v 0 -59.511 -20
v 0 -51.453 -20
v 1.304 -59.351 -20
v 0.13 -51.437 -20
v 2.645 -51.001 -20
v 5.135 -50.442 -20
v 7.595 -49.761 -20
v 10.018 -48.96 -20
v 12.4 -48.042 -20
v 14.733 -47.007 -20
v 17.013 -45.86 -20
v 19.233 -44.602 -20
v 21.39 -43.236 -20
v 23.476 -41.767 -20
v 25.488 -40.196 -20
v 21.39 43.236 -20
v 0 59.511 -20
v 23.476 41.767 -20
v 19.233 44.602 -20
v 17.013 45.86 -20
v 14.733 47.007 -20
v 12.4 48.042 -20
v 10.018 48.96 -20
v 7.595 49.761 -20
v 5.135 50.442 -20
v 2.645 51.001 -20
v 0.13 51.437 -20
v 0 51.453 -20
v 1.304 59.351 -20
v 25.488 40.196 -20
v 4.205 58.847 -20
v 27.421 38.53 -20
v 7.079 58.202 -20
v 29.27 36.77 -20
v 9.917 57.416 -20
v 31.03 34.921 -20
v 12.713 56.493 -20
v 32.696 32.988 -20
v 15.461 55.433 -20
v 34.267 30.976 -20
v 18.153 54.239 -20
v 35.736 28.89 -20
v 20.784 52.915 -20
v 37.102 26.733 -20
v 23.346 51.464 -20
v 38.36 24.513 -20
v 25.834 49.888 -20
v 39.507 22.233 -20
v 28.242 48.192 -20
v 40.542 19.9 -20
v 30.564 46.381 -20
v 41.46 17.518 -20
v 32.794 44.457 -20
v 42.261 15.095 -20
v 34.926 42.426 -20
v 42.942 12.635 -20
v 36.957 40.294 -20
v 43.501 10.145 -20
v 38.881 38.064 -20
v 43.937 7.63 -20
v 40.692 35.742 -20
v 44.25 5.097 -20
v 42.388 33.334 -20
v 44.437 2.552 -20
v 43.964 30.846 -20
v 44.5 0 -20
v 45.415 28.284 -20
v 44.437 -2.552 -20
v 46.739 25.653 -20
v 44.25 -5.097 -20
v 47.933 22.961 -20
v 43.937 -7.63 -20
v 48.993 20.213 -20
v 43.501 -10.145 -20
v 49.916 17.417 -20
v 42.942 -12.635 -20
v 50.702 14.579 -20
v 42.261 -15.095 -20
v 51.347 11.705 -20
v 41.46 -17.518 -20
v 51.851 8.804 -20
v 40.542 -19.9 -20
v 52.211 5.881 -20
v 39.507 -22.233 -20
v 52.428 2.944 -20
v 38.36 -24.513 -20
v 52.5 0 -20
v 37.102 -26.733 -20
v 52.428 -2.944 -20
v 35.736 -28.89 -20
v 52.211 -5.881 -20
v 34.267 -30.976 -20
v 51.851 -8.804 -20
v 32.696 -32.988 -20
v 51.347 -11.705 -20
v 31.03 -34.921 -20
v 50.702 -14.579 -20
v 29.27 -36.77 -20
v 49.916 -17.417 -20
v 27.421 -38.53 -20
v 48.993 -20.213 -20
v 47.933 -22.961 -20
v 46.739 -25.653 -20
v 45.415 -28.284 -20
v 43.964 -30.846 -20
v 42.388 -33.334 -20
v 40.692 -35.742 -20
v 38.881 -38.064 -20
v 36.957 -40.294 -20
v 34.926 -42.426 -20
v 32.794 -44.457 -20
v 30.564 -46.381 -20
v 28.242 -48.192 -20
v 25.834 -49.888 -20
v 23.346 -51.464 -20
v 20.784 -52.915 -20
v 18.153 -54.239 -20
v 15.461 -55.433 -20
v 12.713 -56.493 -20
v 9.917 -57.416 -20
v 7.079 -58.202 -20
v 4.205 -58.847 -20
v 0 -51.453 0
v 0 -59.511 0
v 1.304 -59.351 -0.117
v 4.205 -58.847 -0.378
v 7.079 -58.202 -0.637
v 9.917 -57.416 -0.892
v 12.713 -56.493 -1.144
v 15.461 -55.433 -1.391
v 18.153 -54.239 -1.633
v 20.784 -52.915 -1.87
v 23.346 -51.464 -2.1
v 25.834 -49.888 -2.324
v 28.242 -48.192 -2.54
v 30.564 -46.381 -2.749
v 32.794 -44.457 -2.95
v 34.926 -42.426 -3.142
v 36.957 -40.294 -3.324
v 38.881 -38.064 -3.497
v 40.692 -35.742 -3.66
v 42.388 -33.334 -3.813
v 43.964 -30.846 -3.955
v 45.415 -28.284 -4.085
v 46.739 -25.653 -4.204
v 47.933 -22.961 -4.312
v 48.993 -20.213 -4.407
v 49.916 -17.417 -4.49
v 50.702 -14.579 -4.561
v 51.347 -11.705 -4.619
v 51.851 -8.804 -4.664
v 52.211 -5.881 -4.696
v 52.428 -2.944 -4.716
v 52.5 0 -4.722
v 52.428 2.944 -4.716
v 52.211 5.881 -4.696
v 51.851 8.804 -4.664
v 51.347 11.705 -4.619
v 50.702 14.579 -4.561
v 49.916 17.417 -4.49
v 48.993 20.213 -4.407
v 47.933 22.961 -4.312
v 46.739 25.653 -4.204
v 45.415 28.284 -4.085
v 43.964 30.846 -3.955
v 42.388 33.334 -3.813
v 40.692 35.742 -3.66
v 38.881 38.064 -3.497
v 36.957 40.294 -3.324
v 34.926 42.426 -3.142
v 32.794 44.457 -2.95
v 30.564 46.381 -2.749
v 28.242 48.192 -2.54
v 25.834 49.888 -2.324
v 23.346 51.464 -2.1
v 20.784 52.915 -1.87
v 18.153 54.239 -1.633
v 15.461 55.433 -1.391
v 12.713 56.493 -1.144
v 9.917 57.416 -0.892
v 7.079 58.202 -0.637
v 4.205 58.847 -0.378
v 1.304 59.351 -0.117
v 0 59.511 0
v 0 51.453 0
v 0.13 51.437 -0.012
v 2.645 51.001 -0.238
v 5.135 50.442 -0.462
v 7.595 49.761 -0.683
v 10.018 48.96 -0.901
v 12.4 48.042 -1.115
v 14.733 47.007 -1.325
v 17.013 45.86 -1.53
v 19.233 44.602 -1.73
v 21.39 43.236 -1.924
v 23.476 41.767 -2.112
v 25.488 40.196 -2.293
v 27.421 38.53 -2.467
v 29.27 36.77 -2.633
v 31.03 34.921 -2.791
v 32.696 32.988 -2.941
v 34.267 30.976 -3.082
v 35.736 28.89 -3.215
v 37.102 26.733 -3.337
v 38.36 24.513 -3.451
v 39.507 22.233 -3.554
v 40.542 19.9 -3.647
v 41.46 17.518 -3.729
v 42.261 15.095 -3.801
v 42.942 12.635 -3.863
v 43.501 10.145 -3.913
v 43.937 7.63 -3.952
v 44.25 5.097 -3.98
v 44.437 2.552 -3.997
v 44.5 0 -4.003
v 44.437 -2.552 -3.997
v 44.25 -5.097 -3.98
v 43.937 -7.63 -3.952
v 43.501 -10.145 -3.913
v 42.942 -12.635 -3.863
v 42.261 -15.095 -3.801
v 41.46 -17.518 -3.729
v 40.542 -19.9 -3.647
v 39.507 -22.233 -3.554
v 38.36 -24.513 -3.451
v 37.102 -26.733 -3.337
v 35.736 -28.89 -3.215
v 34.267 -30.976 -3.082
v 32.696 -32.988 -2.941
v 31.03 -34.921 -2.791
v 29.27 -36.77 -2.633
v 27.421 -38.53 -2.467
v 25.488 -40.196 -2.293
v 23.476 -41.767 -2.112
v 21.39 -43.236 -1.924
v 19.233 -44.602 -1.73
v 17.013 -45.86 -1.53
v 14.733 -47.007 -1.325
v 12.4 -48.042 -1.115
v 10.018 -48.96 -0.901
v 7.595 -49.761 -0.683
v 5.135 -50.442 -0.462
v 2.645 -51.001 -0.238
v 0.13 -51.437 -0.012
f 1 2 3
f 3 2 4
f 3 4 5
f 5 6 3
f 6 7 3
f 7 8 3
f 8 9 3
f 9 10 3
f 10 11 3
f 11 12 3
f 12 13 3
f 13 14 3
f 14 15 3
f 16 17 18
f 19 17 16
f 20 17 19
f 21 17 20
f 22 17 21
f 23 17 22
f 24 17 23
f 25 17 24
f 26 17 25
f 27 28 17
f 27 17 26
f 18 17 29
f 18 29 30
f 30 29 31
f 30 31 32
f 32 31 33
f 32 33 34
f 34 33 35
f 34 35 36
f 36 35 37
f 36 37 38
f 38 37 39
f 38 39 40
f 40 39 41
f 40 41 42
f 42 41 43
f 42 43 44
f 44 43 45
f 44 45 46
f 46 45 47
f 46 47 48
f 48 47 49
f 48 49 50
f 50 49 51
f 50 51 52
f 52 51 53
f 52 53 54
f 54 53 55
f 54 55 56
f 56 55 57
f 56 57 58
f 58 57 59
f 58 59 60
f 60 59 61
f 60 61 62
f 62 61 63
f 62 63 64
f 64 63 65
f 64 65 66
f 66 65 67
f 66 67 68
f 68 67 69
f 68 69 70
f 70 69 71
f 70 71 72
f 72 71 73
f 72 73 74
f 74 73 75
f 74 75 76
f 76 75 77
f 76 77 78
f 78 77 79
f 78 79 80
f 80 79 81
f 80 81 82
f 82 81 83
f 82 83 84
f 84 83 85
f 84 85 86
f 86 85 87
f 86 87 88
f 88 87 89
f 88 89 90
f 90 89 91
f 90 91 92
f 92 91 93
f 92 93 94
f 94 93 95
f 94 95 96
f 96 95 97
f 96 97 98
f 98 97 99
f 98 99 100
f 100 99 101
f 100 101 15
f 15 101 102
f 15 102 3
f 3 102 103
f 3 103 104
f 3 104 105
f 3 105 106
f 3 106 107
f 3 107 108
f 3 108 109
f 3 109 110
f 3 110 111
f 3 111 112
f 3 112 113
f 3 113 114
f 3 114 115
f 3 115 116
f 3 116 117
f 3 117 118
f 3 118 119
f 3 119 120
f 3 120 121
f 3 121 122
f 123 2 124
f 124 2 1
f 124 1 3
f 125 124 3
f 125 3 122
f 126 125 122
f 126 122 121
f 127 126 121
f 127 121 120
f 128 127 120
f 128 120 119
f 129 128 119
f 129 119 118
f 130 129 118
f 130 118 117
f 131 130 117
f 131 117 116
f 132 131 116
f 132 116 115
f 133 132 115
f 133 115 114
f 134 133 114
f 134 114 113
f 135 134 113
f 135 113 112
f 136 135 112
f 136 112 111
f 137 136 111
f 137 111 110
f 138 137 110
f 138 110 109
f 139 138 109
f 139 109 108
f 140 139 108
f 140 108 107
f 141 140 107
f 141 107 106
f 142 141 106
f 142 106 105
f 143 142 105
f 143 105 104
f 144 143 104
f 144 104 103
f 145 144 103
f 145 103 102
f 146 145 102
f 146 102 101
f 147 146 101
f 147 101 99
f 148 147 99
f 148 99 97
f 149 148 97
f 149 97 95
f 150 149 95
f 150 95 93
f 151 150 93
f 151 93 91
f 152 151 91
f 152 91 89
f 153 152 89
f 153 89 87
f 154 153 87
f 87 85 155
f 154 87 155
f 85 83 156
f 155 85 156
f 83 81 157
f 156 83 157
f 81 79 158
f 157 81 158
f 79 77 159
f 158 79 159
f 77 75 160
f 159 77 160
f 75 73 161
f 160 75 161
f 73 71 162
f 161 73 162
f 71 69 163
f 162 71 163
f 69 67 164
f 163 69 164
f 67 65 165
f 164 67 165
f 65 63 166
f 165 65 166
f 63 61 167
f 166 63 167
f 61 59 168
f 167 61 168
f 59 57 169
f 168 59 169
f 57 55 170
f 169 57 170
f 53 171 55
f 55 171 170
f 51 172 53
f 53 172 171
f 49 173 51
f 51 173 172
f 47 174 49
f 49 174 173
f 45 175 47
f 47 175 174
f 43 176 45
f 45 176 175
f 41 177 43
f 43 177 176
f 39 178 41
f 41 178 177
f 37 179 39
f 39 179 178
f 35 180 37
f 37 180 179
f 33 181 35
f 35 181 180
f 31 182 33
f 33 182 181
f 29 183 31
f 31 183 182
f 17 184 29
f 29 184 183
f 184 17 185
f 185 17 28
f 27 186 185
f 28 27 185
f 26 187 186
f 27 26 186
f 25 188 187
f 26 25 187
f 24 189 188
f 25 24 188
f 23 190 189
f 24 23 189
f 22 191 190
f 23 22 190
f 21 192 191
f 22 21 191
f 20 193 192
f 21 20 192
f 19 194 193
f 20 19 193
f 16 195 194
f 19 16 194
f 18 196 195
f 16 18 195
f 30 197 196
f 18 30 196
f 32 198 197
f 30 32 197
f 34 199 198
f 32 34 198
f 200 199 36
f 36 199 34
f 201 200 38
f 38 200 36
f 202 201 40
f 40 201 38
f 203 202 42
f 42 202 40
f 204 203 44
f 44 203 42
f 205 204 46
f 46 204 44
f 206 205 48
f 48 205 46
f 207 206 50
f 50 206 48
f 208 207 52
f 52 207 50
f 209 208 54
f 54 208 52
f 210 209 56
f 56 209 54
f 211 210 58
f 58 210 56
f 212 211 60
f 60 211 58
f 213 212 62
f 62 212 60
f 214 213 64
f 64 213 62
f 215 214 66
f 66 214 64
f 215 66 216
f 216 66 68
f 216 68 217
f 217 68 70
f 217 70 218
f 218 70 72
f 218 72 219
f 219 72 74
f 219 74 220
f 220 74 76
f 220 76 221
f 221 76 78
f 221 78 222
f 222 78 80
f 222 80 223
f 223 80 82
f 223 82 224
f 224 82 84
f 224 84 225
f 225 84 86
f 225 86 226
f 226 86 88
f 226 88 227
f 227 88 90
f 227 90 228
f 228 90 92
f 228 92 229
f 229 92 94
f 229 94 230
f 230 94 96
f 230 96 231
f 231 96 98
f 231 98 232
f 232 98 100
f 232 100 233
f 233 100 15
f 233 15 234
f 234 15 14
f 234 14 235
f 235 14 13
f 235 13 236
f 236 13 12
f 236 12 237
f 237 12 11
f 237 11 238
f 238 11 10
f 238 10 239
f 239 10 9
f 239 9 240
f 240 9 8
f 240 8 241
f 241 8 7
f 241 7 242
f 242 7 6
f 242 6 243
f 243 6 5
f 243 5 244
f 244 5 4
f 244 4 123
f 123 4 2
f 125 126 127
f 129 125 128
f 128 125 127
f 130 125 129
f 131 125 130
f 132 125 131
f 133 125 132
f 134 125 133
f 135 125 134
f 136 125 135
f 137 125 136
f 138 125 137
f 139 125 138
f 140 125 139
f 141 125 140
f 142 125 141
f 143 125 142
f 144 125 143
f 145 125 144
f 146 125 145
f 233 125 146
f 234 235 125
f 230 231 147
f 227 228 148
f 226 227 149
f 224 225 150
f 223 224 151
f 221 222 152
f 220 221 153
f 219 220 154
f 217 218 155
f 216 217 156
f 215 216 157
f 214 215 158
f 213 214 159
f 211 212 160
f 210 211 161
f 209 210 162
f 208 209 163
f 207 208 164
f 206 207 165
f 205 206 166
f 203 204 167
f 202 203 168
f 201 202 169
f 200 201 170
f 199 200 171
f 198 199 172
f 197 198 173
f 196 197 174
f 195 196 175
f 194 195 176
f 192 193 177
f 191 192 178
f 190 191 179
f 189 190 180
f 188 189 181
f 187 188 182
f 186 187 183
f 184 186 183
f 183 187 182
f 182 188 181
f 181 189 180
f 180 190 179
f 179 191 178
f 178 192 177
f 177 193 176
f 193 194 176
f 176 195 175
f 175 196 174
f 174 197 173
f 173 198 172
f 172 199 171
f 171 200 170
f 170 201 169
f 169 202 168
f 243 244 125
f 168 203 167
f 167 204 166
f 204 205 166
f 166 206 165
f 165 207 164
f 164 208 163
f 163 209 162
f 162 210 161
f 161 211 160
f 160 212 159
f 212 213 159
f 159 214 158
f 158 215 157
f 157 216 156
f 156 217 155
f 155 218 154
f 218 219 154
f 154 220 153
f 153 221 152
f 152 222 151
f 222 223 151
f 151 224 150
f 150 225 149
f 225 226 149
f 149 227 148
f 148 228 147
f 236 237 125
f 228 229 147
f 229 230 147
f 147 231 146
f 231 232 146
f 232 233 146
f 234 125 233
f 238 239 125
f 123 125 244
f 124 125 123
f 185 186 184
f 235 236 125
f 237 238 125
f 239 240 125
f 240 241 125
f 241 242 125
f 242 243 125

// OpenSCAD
$fn=128;
difference() {
    difference() {
        difference() {		
            difference() {	
                translate([-7.5,0,-10]) cylinder (h = 20, r=60, center = true);
                translate([-7.5,0,-15]) cylinder (h = 30, r=52, center = true);
            }
            translate([0,-80,0]) rotate([0,5.14,0]) cube([60,160,20]);
        }
        translate([-100,-80,-25]) cube([100,160,50]);
    }
    translate([-20,-80,0]) cube([100,160,10]);
}
